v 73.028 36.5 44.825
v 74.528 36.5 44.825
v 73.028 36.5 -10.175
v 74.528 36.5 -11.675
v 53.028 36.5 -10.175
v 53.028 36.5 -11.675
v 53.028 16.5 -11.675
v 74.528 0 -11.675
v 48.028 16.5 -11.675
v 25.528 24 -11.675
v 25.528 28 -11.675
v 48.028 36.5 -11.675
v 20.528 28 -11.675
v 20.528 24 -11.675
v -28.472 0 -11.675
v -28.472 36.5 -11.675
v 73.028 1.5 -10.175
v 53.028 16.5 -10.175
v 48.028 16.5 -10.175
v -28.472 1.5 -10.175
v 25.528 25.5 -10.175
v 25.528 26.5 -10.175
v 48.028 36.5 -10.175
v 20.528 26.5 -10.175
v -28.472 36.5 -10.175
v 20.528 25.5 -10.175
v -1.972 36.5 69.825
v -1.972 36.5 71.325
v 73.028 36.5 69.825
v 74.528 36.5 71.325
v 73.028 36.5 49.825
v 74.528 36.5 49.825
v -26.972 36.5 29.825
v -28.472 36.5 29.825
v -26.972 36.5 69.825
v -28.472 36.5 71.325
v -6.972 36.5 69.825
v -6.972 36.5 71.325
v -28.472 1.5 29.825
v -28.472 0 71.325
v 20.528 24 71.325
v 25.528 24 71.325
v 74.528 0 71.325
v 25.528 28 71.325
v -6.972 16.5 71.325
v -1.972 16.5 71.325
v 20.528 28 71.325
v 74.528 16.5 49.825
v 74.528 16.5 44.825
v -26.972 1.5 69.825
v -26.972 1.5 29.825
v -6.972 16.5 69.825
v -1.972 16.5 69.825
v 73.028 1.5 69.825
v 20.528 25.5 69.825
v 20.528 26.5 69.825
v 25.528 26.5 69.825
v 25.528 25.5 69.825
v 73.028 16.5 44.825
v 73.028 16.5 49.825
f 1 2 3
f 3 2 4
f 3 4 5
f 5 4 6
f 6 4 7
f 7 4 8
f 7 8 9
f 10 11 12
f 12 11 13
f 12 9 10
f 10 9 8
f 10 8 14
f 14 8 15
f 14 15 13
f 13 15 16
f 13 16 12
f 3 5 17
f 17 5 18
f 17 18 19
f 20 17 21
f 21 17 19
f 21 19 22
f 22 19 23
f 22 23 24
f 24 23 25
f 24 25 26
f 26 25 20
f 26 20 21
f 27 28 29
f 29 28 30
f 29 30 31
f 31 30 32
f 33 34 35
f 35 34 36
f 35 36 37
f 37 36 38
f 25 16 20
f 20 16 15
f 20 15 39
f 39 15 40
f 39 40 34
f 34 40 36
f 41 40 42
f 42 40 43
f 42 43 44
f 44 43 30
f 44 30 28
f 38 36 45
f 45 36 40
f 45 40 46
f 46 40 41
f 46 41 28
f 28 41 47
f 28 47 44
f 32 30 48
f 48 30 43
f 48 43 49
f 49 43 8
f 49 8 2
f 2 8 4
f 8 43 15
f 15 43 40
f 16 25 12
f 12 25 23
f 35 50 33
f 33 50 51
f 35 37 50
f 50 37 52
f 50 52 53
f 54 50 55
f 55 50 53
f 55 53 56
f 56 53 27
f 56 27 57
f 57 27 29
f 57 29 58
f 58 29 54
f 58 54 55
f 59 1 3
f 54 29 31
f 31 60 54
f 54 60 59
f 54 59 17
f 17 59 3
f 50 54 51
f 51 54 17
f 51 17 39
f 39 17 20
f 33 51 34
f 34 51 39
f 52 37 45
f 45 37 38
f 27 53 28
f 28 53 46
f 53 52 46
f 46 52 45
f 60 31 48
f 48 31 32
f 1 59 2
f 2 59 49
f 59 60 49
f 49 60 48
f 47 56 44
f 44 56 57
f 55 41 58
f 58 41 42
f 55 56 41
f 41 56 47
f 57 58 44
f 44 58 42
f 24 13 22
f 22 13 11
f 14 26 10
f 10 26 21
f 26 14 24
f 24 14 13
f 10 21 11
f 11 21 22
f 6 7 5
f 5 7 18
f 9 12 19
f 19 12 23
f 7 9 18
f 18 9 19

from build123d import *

# Parameters (mm, degrees)
SKETCH1_W           = 103
SKETCH1_H           = 83
BOSS_EXTRUDE1_DEPTH = 1.5
SKETCH2_W           = 103
SKETCH2_H           = 83
SKETCH2_W_2         = 100
SKETCH2_H_2         = 80
BOSS_EXTRUDE2_DEPTH = 35
SKETCH4_W           = 40
SKETCH4_H           = 35
CUT_EXTRUDE2_DEPTH  = 1.5
SKETCH5_W           = 5
SKETCH5_H           = 20
CUT_EXTRUDE3_DEPTH  = 1.5
SKETCH6_W           = 5
SKETCH6_H           = 20
CUT_EXTRUDE4_DEPTH  = 1.5
CUT_EXTRUDE5_DEPTH  = 2.5
SKETCH9_W           = 5
SKETCH9_H           = 20
CUT_EXTRUDE6_DEPTH  = 5


with BuildPart() as part:
    # Sketch1 → Boss-Extrude1 (new body)
    with BuildSketch(Plane(origin=(0, 0, 0), x_dir=(1, 0, 0), z_dir=(0, 1, 0))):
        with Locations((23.028301887, -29.825471698)):
            Rectangle(SKETCH1_W, SKETCH1_H)
    extrude(amount=BOSS_EXTRUDE1_DEPTH)

    # Sketch2 → Boss-Extrude2 (add)
    with BuildSketch(Plane(origin=(0, 1.5, 0), x_dir=(1, 0, 0), z_dir=(0, 1, 0))):
        with Locations((23.028301887, -29.825471698)):
            Rectangle(SKETCH2_W, SKETCH2_H)
        with Locations((23.028301887, -29.825471698)):
            Rectangle(SKETCH2_W_2, SKETCH2_H_2, mode=Mode.SUBTRACT)
    extrude(amount=BOSS_EXTRUDE2_DEPTH)

    # Sketch4 → Cut-Extrude2 (cut)
    with BuildSketch(Plane.ZY.offset(28.471698113)):
        with Locations((9.825471698, 19)):
            Rectangle(SKETCH4_W, SKETCH4_H)
    extrude(amount=-CUT_EXTRUDE2_DEPTH, mode=Mode.SUBTRACT)

    # Sketch5 → Cut-Extrude3 (cut)
    with BuildSketch(Plane.XY.offset(71.325471698)):
        with Locations((-4.471698113, 26.5)):
            Rectangle(SKETCH5_W, SKETCH5_H)
    extrude(amount=-CUT_EXTRUDE3_DEPTH, mode=Mode.SUBTRACT)

    # Sketch6 → Cut-Extrude4 (cut)
    with BuildSketch(Plane(origin=(74.528301887, 0, 0), x_dir=(0, 0, -1), z_dir=(1, 0, 0))):
        with Locations((-47.325471698, 26.5)):
            Rectangle(SKETCH6_W, SKETCH6_H)
    extrude(amount=-CUT_EXTRUDE4_DEPTH, mode=Mode.SUBTRACT)

    # Sketch7 → Cut-Extrude5 (cut, symmetric)
    with BuildSketch(Plane(origin=(23.028301887, 0, 0), x_dir=(0, 0, -1), z_dir=(1, 0, 0))):
        Polygon((-71.325471698, 28), (-69.825471698, 26.5), (-69.825471698, 25.5), (-71.325471698, 24), align=None)
        Polygon((11.674528302, 28), (11.674528302, 24), (10.174528302, 25.5), (10.174528302, 26.5), align=None)
    extrude(amount=CUT_EXTRUDE5_DEPTH, both=True, mode=Mode.SUBTRACT)

    # Sketch9 → Cut-Extrude6 (cut)
    with BuildSketch(Plane(origin=(0, 0, -11.674528302), x_dir=(-1, 0, 0), z_dir=(0, 0, -1))):
        with Locations((-50.528301887, 26.5)):
            Rectangle(SKETCH9_W, SKETCH9_H)
    extrude(amount=-CUT_EXTRUDE6_DEPTH, mode=Mode.SUBTRACT)


solid = part.part
